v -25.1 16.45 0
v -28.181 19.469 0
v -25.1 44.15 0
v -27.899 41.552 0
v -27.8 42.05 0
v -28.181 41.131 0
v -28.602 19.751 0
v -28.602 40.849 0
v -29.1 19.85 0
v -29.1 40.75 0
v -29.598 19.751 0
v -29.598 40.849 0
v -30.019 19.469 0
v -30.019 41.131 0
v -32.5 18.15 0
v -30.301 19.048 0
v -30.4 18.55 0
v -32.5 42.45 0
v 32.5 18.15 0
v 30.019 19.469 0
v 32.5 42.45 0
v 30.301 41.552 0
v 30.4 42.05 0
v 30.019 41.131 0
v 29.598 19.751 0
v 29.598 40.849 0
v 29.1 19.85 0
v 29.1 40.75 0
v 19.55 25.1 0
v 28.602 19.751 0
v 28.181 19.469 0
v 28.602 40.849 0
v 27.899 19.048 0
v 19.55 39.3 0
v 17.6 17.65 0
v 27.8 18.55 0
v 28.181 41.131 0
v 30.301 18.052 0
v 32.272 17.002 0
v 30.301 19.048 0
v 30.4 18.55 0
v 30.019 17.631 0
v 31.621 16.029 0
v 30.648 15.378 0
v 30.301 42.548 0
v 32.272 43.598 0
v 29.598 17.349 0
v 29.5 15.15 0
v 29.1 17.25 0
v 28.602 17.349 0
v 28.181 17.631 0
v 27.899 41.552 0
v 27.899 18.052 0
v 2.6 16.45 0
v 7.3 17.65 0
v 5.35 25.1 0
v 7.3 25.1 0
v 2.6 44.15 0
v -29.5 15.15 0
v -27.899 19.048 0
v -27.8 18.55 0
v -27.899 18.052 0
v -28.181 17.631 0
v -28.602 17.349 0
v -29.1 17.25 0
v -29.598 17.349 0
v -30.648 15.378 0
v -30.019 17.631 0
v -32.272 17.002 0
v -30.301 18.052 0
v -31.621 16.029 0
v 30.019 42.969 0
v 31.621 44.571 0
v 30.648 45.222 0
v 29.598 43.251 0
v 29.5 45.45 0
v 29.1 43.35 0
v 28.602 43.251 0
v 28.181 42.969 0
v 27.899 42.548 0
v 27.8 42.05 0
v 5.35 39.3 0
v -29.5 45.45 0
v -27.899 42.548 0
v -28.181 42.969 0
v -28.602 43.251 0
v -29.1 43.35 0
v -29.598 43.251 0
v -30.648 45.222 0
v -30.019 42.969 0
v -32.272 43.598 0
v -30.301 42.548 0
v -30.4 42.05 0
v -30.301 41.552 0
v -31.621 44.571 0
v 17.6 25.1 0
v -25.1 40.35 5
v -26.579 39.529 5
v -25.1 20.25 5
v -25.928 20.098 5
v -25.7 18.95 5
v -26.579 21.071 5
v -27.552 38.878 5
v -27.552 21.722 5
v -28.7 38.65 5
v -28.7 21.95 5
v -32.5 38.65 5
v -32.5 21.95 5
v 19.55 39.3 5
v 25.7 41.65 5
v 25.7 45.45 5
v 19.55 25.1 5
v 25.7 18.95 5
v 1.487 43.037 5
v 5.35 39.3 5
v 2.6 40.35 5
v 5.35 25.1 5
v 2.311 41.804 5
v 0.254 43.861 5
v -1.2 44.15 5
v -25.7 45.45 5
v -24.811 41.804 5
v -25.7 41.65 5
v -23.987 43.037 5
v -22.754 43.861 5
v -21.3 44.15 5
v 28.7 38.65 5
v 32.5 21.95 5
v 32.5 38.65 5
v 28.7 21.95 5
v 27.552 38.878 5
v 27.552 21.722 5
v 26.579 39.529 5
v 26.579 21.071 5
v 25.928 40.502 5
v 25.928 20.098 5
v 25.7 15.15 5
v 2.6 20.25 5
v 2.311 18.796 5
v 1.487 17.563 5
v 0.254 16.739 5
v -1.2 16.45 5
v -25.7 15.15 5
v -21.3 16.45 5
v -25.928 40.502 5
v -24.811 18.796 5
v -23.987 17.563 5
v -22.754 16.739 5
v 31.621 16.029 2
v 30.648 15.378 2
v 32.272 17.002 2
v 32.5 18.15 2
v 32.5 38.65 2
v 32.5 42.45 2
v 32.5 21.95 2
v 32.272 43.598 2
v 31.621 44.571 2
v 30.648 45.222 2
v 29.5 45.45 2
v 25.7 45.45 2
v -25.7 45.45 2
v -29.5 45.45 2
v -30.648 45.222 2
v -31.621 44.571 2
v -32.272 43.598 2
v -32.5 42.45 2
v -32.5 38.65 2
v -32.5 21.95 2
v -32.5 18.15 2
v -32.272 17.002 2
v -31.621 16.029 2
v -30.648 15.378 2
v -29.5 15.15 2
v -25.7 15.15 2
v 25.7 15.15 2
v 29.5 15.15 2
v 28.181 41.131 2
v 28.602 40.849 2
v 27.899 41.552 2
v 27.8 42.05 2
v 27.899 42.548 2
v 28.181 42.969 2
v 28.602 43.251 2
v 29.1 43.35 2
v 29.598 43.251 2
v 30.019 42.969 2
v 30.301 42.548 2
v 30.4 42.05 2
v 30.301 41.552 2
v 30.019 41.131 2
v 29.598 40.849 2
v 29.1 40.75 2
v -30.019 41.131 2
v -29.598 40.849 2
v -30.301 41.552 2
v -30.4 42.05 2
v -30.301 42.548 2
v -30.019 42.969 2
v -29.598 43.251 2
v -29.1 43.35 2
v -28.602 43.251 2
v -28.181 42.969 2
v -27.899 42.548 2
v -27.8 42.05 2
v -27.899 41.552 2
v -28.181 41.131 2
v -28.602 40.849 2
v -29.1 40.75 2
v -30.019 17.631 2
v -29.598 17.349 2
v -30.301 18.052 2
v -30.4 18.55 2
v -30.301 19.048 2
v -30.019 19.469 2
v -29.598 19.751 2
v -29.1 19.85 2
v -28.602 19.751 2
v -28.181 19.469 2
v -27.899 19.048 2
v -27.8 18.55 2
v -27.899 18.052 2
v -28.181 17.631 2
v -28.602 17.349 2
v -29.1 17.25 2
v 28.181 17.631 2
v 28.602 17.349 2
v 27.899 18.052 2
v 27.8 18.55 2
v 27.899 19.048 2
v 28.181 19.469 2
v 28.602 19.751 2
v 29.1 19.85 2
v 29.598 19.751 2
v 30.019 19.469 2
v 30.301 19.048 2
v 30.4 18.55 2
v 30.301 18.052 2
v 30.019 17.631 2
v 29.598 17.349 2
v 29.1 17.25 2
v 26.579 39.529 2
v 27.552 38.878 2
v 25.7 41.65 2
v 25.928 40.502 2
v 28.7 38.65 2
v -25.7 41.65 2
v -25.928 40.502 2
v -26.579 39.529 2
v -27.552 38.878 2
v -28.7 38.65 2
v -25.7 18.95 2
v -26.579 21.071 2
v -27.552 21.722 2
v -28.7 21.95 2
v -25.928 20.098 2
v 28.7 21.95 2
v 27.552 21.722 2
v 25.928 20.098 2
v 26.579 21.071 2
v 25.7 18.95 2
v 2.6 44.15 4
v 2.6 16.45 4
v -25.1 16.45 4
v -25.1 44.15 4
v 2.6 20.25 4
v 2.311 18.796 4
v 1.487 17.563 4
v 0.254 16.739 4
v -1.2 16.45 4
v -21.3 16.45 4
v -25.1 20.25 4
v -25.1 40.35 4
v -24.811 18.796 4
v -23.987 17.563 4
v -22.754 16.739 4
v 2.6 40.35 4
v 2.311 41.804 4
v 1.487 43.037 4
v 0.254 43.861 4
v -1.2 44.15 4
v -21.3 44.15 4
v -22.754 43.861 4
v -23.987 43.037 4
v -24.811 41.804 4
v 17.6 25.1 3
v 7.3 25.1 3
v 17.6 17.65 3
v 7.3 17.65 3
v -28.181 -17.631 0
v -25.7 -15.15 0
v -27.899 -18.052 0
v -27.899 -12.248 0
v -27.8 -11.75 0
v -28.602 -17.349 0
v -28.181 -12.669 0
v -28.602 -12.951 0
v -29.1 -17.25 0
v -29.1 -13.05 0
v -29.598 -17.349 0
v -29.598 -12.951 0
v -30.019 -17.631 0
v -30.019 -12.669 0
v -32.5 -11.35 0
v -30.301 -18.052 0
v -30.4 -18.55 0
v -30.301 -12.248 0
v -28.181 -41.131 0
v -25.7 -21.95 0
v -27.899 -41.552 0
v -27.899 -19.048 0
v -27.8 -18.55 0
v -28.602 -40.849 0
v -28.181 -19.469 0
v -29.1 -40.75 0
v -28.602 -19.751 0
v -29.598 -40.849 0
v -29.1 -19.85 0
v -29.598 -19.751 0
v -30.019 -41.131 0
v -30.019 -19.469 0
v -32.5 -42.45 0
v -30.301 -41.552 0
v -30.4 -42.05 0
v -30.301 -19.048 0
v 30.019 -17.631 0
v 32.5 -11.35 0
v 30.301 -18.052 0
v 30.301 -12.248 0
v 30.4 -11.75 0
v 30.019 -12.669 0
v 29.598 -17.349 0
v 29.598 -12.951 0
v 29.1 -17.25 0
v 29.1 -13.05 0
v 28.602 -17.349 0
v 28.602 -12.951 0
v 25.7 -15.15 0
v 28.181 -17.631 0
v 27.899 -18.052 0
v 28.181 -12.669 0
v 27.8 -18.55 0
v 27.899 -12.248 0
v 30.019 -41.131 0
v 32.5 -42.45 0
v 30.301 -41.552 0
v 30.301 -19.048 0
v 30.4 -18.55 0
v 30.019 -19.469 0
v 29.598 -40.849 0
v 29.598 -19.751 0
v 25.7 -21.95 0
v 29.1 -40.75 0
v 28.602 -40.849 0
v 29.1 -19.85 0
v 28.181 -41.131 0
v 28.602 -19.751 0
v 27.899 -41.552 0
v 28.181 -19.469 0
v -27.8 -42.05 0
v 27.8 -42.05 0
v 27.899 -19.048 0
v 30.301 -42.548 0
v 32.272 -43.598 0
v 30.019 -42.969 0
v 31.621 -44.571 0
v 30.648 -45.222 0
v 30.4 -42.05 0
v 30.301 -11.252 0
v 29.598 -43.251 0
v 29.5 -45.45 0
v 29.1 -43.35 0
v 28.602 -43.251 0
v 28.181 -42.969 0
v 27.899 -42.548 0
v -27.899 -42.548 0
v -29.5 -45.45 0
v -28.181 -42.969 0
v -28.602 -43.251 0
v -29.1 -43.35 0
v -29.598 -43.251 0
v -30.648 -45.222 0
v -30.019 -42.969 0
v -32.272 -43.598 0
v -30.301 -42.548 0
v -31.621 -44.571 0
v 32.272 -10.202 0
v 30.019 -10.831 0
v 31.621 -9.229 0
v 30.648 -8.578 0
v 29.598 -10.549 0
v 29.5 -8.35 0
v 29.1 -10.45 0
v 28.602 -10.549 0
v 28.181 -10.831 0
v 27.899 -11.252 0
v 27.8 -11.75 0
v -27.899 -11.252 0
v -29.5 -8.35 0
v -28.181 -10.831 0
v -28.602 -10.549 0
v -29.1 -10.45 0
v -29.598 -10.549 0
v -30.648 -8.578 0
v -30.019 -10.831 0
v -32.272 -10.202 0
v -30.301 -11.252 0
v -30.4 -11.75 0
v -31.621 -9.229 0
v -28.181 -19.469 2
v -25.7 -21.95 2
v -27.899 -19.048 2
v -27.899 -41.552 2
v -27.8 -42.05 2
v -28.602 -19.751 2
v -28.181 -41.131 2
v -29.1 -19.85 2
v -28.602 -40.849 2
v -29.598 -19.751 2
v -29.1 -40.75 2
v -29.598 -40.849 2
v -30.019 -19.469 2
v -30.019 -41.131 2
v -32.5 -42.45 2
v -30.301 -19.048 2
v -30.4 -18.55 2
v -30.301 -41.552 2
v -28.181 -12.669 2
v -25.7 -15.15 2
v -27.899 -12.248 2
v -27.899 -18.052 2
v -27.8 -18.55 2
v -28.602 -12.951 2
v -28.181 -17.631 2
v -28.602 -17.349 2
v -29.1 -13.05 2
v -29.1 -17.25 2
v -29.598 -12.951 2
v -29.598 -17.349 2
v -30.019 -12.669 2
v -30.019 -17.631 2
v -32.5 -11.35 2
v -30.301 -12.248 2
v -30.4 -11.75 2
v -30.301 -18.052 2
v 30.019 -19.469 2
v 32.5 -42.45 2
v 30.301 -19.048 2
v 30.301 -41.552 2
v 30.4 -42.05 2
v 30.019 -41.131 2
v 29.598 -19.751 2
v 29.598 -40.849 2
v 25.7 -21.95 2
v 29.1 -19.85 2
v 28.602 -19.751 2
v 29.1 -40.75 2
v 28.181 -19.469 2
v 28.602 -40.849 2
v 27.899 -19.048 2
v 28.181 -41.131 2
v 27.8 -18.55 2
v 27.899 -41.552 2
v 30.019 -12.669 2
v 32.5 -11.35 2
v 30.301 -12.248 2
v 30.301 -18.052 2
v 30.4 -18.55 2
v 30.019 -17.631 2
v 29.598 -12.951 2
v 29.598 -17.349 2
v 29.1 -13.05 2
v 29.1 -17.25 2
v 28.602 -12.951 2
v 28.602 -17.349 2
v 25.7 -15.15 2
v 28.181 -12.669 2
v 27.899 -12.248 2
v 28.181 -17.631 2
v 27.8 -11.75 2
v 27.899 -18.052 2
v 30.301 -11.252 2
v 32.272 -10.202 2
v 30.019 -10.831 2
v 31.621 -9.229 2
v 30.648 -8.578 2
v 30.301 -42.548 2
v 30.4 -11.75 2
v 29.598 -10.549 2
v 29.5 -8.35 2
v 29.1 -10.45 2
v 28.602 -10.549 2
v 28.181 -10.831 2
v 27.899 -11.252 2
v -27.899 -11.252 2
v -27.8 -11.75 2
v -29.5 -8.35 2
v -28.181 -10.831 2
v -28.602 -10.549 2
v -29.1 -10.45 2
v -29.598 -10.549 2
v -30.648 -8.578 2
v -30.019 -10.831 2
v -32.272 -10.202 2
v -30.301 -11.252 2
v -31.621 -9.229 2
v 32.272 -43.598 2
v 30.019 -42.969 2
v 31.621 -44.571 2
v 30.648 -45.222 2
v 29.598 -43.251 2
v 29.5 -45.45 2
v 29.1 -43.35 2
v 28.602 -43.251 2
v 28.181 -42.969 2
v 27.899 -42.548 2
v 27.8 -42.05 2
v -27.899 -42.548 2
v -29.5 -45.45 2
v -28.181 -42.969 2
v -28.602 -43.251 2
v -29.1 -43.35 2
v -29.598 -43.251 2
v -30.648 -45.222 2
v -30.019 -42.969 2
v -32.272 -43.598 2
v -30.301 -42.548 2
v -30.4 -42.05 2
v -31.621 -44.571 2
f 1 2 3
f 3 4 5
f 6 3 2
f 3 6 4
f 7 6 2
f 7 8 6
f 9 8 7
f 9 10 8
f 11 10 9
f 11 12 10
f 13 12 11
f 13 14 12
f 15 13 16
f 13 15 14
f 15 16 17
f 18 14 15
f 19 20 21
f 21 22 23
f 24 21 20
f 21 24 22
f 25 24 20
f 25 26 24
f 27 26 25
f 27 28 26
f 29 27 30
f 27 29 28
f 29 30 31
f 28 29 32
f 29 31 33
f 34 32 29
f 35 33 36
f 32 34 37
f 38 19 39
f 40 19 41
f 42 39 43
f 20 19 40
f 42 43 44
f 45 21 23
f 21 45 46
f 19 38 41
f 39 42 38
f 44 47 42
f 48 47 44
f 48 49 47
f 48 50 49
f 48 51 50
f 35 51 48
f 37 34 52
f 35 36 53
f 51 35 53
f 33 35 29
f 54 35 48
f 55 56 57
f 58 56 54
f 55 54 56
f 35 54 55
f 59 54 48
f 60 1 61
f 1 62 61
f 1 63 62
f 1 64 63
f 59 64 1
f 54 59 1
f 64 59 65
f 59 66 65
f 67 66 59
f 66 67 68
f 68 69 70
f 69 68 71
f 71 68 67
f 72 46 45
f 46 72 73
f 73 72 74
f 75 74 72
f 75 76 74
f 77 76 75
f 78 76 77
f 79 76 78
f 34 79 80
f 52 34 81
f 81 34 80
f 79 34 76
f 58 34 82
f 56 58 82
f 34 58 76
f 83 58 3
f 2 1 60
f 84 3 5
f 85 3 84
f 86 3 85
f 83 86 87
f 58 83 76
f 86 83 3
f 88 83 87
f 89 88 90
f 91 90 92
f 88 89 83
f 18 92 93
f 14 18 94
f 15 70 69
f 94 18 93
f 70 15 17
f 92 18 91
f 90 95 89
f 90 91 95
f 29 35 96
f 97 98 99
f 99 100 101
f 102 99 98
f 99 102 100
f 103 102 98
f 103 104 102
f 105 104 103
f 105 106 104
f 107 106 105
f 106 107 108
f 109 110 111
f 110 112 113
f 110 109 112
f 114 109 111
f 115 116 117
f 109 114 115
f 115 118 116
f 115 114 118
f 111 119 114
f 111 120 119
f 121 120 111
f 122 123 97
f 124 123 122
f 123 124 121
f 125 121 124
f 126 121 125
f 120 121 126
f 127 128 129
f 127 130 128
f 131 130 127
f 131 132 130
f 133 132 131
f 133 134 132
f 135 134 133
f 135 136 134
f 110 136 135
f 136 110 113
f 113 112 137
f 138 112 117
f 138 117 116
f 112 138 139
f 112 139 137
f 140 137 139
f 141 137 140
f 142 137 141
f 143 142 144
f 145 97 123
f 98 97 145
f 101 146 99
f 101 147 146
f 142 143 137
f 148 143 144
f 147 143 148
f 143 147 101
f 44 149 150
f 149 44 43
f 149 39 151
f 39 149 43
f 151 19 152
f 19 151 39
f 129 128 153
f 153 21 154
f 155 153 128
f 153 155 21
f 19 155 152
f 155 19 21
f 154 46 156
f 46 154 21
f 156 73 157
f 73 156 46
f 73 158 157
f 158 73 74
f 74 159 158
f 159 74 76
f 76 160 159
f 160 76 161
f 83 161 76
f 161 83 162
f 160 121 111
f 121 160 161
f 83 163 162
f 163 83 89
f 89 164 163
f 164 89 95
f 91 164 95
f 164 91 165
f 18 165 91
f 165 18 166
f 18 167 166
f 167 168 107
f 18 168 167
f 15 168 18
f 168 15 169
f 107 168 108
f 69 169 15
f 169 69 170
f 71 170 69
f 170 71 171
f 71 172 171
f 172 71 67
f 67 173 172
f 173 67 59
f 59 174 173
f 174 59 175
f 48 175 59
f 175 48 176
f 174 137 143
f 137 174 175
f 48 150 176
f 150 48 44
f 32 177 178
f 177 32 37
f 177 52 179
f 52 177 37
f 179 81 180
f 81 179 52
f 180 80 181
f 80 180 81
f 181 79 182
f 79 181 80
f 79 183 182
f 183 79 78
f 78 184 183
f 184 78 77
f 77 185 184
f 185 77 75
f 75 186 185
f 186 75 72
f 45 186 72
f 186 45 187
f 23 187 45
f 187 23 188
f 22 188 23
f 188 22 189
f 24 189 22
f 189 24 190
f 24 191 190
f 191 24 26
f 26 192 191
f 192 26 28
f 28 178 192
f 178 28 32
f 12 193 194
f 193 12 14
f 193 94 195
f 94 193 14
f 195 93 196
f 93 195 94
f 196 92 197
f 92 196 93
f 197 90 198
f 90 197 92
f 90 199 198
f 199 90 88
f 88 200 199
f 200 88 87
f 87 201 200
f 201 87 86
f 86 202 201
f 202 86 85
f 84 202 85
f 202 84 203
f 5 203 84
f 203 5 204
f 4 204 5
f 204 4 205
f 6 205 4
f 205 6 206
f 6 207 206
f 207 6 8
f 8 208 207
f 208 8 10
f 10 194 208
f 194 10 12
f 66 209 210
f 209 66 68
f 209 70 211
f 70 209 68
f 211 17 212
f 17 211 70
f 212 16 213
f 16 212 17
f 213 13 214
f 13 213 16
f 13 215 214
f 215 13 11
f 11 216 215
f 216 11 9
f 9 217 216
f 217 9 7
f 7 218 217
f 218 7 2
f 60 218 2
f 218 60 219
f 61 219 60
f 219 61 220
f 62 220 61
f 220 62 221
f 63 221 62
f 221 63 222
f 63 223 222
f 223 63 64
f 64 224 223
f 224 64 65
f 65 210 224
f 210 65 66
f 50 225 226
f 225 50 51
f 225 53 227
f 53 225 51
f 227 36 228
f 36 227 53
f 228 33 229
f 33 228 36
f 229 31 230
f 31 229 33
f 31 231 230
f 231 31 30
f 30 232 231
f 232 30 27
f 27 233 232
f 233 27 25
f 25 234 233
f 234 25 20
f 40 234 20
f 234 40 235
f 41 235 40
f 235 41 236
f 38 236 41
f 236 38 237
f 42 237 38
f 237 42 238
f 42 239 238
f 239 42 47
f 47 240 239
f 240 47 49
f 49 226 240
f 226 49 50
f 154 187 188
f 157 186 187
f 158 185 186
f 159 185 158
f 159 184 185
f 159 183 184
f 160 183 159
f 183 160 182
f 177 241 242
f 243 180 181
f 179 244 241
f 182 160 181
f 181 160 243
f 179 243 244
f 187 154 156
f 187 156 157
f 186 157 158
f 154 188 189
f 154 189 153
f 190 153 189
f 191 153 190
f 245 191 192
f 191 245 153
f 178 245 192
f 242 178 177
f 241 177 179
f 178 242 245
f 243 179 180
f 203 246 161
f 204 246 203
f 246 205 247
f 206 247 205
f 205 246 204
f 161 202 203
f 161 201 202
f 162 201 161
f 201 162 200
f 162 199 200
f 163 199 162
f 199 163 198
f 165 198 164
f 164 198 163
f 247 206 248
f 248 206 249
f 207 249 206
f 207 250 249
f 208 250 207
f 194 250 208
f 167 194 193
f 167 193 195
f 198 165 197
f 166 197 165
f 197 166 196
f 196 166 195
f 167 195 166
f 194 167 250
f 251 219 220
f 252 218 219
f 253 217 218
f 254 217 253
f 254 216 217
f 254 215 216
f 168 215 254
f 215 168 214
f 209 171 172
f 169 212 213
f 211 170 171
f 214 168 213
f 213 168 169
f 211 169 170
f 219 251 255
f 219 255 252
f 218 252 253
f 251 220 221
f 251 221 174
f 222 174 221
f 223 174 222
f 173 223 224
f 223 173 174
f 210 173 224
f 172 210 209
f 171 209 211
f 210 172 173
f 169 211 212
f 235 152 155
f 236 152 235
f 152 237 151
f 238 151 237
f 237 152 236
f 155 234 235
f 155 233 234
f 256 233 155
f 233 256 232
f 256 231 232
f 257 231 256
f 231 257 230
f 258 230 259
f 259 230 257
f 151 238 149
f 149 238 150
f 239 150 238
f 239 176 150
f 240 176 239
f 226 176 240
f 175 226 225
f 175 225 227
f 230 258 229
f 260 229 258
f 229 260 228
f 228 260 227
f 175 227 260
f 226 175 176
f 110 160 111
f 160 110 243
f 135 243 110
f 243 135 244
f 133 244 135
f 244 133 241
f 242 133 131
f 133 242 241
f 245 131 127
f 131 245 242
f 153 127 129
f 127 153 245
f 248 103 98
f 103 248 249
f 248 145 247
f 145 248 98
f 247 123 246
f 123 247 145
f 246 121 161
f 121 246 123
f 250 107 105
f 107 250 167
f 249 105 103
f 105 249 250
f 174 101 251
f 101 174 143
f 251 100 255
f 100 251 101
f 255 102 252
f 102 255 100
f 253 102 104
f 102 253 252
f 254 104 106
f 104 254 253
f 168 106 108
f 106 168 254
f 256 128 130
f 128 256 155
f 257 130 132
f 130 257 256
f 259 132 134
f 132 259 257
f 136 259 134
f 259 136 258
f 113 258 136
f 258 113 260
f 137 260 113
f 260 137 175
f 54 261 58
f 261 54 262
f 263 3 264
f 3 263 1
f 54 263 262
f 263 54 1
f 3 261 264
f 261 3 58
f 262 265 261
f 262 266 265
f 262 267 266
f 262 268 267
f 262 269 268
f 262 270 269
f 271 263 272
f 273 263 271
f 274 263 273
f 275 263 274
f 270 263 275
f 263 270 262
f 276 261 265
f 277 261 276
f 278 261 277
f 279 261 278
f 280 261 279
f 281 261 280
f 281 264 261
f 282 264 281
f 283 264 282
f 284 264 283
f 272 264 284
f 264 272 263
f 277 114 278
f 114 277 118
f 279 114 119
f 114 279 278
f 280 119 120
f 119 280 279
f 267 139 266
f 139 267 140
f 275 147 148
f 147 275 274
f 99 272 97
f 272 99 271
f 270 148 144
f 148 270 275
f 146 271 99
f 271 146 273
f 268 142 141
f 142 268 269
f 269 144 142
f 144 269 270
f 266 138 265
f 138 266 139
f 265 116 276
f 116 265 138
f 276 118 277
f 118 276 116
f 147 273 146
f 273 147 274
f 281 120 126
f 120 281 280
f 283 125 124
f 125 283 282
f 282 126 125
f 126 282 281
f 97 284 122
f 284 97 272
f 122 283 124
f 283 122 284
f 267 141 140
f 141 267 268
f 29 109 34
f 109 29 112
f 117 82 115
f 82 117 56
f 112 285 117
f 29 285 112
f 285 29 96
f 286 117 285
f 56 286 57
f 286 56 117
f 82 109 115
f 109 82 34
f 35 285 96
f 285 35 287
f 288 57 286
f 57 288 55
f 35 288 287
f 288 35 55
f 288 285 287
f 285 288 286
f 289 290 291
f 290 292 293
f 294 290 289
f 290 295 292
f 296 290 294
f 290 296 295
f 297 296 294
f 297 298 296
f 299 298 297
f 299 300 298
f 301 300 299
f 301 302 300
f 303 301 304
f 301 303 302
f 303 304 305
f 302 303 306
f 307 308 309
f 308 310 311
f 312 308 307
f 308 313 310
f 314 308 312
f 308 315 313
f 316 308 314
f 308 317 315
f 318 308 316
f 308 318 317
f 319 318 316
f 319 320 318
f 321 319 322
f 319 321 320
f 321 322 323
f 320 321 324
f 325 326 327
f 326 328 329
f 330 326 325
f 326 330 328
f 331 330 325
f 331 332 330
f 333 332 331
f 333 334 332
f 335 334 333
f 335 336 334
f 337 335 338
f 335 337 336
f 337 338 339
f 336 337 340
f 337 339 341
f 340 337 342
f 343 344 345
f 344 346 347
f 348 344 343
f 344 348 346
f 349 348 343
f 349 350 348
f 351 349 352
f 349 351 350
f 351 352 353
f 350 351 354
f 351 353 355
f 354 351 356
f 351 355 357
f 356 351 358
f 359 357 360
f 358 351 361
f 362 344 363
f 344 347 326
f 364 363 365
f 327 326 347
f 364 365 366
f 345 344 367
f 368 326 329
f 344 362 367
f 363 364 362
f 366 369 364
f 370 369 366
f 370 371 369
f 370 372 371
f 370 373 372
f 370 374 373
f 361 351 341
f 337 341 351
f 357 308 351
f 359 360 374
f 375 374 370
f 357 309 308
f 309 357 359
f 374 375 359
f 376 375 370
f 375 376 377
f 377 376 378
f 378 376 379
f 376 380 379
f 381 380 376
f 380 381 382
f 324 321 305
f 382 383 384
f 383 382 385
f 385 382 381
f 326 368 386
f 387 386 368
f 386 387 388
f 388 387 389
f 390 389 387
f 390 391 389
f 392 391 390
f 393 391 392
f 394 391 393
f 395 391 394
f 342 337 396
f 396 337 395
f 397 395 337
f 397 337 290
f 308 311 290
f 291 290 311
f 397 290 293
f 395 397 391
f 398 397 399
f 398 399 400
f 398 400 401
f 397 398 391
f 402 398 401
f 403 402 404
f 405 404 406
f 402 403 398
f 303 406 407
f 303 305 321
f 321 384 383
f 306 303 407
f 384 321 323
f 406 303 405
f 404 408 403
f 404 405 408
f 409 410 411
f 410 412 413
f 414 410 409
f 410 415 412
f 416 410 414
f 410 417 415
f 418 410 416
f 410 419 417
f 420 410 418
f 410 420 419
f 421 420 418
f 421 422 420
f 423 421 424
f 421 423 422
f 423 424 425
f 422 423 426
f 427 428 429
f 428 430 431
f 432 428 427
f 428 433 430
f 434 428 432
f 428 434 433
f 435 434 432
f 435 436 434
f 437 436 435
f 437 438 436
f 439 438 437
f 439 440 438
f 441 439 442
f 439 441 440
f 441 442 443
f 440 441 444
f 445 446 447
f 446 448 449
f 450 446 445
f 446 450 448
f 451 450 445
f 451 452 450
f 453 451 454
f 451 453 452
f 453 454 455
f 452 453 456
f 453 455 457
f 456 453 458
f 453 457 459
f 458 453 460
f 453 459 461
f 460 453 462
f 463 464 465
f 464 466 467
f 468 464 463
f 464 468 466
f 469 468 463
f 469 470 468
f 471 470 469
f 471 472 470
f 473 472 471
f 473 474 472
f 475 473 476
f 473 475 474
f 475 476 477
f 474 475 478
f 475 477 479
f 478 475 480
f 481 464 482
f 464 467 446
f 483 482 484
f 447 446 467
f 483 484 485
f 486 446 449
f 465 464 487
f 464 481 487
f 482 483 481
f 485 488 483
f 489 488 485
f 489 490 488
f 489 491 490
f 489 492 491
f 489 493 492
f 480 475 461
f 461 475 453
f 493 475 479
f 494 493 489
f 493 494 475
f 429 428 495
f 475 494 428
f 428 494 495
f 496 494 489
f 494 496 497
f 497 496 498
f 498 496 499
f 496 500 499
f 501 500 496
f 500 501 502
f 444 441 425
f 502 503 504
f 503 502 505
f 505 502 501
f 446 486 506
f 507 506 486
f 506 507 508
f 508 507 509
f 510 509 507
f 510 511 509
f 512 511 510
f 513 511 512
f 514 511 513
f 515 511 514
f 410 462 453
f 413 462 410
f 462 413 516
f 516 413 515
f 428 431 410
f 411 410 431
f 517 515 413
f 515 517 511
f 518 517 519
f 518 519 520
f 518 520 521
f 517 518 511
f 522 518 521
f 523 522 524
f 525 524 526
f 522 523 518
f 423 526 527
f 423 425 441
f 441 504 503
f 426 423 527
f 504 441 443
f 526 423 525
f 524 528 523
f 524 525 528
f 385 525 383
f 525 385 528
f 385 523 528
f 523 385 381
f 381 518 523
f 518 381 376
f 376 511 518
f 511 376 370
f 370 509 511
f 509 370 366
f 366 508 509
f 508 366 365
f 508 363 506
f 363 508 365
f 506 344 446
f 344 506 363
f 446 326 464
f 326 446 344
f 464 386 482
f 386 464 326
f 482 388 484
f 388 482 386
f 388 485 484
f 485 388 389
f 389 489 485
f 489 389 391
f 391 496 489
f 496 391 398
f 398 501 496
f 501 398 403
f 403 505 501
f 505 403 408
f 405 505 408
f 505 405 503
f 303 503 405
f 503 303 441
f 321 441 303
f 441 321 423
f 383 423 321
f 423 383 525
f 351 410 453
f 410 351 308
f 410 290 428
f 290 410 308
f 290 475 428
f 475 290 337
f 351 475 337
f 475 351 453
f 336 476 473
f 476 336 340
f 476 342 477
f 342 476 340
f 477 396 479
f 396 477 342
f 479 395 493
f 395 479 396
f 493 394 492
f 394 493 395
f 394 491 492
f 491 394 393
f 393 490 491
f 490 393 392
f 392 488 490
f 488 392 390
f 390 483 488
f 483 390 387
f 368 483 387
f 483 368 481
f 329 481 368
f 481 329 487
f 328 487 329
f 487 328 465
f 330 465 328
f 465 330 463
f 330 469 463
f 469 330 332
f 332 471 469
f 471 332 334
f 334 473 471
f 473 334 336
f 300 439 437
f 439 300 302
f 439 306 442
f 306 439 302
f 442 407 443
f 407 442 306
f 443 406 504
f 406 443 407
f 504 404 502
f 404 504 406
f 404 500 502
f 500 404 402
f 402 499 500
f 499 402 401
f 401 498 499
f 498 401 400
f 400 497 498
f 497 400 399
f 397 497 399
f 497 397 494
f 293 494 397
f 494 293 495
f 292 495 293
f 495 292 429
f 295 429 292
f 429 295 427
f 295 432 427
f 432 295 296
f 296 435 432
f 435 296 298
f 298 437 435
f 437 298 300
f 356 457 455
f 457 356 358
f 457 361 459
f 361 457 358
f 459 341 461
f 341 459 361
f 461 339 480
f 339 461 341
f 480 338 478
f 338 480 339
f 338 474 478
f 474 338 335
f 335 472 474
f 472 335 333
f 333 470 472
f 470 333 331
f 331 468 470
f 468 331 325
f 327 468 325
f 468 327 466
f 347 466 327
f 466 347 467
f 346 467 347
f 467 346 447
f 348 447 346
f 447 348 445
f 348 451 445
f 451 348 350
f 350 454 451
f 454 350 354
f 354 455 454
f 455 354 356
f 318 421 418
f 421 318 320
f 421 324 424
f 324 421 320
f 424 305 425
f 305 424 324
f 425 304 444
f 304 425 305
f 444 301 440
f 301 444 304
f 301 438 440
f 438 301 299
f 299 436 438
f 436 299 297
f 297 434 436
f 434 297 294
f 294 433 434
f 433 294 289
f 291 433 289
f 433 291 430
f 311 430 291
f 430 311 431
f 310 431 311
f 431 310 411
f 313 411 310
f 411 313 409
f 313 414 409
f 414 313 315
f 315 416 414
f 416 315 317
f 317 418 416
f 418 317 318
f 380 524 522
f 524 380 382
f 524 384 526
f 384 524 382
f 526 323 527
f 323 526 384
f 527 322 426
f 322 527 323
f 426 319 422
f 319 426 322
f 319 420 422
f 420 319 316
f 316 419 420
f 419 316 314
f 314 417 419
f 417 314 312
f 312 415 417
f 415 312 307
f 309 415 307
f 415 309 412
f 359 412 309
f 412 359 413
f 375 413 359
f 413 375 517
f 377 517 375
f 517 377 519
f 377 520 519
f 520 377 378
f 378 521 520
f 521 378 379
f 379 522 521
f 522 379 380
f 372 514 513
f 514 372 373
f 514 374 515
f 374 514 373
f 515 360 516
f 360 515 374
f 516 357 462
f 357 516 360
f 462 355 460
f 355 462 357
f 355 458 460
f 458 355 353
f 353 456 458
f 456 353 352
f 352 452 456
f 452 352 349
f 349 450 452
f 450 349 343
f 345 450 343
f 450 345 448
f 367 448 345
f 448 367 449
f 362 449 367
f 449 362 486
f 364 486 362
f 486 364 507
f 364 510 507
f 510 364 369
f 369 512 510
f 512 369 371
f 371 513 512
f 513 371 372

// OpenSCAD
pt = 0.2; // printer tolerance
pth = pt/2;
$fn = 16;

piHeight = 30.3;
piWidth = 65;
piR = 3;
piBoardThickness = 1.5;

mountDiameter = 2.4;
mountRadius = mountDiameter / 2;
mountClearance = 6.8;
mountInset = mountClearance/2;

switchBoardWidth = 18.1;
switchBoardHeight = 23.5;
switchX = piWidth - 11 - switchBoardWidth;
switchY = piHeight - 4.2 - switchBoardHeight;
switchExtraDepth = 3;
switchExtraInset = 4;
switchExtraX = switchX + switchExtraInset;
switchExtraY = switchY;
switchExtraWidth = switchBoardWidth - 2*switchExtraInset;
switchExtraHeight = switchBoardHeight/2;

screenWidth = 27.5;
screenHeight = 27.5;
screenX = 7.5;
screenY = (piHeight - screenHeight)/2;

screenCornerWidth = 3.8;

boardAndScreenThickness = 12;
boardAndSwitchThickness = 8;
screenRiserHeight = boardAndScreenThickness - boardAndSwitchThickness;

switchWellHeight = 5;
switchWellWidth = 14;
switchWellX = switchX + ((switchBoardWidth - switchWellWidth)/2);
switchWellY = switchY + ((switchBoardWidth - switchWellWidth)/2) + (switchBoardHeight - switchBoardWidth);

// floor
caseTopThickness = 5;
caseThickness = 2;
// walls
wallThickness = 2;
// holding clips
clipThickness = 1;


translate([-piWidth/2, piHeight/2, 0])
    caseTop();
translate([-piWidth/2, -piHeight*3/2, 0])
    caseBottom();


module caseTop() {
    difference() {
        linear_extrude(0, 0, caseTopThickness)
            roundedRectWithHoles(piWidth, piHeight, piR, mountInset, mountRadius + pth);
        // mounting corners
        translate([0, 0, caseThickness])
            linear_extrude(0, 0, caseTopThickness) union() {
                translate([-mountClearance, -mountClearance, 0])
                    roundedRect(2*mountClearance, 2*mountClearance, piR);
                translate([piWidth-mountClearance, -mountClearance, 0])
                    roundedRect(2*mountClearance, 2*mountClearance, piR);
                translate([piWidth-mountClearance, piHeight-mountClearance, 0])
                    roundedRect(2*mountClearance, 2*mountClearance, piR);
                translate([-mountClearance, piHeight-mountClearance, 0])
                    roundedRect(2*mountClearance, 2*mountClearance, piR);
        }
        // screen well
        linear_extrude(0, 0, screenRiserHeight)
            translate([screenX-pth, screenY-pth, 0])
                square([screenWidth+pt, screenHeight+pt]);
        // screen cutout w/ corner clips
        linear_extrude(0, 0, caseTopThickness + 1) // +1 to cut through in preview
            translate([screenX-pth, screenY-pth, 0]) union() {
                roundedRect(screenWidth+pt, screenHeight+pt, screenCornerWidth);
            }
        // switch well
        linear_extrude(0, 0, switchWellHeight + 1) // +1 to cut through in preview
            translate([switchWellX-pth, switchWellY-pth, 0])
                square(switchWellWidth+pt);
        // switch extras well
        linear_extrude(0, 0, switchExtraDepth)
            translate([switchExtraX-pth, switchExtraY-pth, 0])
                square([switchExtraWidth+pt, switchExtraHeight+pt]);
    }
}

module caseBottom() {
        linear_extrude(0, 0, caseThickness)
            intersection() {
                union() {
                    difference() {
                        roundedRectWithHoles(piWidth, piHeight, 0, mountInset, mountRadius + pth);
                        translate([mountClearance, piHeight - mountClearance, 0])
                            square([piWidth - 2*mountClearance, mountClearance]);
                    }
                    translate([0, piHeight, 0])
                        square([piWidth, mountClearance]);
                }
                roundedRectWithHoles(piWidth, piHeight + mountClearance, piR, mountInset, mountRadius + pth);
            }
}

module roundedRect(w, h, r) {
    if (r > 0) {
        translate([r, r, 0]) minkowski() {
            circle(r);
            square([w - 2*r, h - 2*r]);
        }
    } else {
        square([w, h]);
    }
}

module roundedRectWithHoles(w, h, r, inset, hr) {
    difference () {
        roundedRect(w, h, r);
        translate([inset, inset, 0]) circle(hr);
        translate([w-inset, inset, 0]) circle(hr);
        translate([w-inset, h-inset, 0]) circle(hr);
        translate([inset, h-inset, 0]) circle(hr);
    }
}
